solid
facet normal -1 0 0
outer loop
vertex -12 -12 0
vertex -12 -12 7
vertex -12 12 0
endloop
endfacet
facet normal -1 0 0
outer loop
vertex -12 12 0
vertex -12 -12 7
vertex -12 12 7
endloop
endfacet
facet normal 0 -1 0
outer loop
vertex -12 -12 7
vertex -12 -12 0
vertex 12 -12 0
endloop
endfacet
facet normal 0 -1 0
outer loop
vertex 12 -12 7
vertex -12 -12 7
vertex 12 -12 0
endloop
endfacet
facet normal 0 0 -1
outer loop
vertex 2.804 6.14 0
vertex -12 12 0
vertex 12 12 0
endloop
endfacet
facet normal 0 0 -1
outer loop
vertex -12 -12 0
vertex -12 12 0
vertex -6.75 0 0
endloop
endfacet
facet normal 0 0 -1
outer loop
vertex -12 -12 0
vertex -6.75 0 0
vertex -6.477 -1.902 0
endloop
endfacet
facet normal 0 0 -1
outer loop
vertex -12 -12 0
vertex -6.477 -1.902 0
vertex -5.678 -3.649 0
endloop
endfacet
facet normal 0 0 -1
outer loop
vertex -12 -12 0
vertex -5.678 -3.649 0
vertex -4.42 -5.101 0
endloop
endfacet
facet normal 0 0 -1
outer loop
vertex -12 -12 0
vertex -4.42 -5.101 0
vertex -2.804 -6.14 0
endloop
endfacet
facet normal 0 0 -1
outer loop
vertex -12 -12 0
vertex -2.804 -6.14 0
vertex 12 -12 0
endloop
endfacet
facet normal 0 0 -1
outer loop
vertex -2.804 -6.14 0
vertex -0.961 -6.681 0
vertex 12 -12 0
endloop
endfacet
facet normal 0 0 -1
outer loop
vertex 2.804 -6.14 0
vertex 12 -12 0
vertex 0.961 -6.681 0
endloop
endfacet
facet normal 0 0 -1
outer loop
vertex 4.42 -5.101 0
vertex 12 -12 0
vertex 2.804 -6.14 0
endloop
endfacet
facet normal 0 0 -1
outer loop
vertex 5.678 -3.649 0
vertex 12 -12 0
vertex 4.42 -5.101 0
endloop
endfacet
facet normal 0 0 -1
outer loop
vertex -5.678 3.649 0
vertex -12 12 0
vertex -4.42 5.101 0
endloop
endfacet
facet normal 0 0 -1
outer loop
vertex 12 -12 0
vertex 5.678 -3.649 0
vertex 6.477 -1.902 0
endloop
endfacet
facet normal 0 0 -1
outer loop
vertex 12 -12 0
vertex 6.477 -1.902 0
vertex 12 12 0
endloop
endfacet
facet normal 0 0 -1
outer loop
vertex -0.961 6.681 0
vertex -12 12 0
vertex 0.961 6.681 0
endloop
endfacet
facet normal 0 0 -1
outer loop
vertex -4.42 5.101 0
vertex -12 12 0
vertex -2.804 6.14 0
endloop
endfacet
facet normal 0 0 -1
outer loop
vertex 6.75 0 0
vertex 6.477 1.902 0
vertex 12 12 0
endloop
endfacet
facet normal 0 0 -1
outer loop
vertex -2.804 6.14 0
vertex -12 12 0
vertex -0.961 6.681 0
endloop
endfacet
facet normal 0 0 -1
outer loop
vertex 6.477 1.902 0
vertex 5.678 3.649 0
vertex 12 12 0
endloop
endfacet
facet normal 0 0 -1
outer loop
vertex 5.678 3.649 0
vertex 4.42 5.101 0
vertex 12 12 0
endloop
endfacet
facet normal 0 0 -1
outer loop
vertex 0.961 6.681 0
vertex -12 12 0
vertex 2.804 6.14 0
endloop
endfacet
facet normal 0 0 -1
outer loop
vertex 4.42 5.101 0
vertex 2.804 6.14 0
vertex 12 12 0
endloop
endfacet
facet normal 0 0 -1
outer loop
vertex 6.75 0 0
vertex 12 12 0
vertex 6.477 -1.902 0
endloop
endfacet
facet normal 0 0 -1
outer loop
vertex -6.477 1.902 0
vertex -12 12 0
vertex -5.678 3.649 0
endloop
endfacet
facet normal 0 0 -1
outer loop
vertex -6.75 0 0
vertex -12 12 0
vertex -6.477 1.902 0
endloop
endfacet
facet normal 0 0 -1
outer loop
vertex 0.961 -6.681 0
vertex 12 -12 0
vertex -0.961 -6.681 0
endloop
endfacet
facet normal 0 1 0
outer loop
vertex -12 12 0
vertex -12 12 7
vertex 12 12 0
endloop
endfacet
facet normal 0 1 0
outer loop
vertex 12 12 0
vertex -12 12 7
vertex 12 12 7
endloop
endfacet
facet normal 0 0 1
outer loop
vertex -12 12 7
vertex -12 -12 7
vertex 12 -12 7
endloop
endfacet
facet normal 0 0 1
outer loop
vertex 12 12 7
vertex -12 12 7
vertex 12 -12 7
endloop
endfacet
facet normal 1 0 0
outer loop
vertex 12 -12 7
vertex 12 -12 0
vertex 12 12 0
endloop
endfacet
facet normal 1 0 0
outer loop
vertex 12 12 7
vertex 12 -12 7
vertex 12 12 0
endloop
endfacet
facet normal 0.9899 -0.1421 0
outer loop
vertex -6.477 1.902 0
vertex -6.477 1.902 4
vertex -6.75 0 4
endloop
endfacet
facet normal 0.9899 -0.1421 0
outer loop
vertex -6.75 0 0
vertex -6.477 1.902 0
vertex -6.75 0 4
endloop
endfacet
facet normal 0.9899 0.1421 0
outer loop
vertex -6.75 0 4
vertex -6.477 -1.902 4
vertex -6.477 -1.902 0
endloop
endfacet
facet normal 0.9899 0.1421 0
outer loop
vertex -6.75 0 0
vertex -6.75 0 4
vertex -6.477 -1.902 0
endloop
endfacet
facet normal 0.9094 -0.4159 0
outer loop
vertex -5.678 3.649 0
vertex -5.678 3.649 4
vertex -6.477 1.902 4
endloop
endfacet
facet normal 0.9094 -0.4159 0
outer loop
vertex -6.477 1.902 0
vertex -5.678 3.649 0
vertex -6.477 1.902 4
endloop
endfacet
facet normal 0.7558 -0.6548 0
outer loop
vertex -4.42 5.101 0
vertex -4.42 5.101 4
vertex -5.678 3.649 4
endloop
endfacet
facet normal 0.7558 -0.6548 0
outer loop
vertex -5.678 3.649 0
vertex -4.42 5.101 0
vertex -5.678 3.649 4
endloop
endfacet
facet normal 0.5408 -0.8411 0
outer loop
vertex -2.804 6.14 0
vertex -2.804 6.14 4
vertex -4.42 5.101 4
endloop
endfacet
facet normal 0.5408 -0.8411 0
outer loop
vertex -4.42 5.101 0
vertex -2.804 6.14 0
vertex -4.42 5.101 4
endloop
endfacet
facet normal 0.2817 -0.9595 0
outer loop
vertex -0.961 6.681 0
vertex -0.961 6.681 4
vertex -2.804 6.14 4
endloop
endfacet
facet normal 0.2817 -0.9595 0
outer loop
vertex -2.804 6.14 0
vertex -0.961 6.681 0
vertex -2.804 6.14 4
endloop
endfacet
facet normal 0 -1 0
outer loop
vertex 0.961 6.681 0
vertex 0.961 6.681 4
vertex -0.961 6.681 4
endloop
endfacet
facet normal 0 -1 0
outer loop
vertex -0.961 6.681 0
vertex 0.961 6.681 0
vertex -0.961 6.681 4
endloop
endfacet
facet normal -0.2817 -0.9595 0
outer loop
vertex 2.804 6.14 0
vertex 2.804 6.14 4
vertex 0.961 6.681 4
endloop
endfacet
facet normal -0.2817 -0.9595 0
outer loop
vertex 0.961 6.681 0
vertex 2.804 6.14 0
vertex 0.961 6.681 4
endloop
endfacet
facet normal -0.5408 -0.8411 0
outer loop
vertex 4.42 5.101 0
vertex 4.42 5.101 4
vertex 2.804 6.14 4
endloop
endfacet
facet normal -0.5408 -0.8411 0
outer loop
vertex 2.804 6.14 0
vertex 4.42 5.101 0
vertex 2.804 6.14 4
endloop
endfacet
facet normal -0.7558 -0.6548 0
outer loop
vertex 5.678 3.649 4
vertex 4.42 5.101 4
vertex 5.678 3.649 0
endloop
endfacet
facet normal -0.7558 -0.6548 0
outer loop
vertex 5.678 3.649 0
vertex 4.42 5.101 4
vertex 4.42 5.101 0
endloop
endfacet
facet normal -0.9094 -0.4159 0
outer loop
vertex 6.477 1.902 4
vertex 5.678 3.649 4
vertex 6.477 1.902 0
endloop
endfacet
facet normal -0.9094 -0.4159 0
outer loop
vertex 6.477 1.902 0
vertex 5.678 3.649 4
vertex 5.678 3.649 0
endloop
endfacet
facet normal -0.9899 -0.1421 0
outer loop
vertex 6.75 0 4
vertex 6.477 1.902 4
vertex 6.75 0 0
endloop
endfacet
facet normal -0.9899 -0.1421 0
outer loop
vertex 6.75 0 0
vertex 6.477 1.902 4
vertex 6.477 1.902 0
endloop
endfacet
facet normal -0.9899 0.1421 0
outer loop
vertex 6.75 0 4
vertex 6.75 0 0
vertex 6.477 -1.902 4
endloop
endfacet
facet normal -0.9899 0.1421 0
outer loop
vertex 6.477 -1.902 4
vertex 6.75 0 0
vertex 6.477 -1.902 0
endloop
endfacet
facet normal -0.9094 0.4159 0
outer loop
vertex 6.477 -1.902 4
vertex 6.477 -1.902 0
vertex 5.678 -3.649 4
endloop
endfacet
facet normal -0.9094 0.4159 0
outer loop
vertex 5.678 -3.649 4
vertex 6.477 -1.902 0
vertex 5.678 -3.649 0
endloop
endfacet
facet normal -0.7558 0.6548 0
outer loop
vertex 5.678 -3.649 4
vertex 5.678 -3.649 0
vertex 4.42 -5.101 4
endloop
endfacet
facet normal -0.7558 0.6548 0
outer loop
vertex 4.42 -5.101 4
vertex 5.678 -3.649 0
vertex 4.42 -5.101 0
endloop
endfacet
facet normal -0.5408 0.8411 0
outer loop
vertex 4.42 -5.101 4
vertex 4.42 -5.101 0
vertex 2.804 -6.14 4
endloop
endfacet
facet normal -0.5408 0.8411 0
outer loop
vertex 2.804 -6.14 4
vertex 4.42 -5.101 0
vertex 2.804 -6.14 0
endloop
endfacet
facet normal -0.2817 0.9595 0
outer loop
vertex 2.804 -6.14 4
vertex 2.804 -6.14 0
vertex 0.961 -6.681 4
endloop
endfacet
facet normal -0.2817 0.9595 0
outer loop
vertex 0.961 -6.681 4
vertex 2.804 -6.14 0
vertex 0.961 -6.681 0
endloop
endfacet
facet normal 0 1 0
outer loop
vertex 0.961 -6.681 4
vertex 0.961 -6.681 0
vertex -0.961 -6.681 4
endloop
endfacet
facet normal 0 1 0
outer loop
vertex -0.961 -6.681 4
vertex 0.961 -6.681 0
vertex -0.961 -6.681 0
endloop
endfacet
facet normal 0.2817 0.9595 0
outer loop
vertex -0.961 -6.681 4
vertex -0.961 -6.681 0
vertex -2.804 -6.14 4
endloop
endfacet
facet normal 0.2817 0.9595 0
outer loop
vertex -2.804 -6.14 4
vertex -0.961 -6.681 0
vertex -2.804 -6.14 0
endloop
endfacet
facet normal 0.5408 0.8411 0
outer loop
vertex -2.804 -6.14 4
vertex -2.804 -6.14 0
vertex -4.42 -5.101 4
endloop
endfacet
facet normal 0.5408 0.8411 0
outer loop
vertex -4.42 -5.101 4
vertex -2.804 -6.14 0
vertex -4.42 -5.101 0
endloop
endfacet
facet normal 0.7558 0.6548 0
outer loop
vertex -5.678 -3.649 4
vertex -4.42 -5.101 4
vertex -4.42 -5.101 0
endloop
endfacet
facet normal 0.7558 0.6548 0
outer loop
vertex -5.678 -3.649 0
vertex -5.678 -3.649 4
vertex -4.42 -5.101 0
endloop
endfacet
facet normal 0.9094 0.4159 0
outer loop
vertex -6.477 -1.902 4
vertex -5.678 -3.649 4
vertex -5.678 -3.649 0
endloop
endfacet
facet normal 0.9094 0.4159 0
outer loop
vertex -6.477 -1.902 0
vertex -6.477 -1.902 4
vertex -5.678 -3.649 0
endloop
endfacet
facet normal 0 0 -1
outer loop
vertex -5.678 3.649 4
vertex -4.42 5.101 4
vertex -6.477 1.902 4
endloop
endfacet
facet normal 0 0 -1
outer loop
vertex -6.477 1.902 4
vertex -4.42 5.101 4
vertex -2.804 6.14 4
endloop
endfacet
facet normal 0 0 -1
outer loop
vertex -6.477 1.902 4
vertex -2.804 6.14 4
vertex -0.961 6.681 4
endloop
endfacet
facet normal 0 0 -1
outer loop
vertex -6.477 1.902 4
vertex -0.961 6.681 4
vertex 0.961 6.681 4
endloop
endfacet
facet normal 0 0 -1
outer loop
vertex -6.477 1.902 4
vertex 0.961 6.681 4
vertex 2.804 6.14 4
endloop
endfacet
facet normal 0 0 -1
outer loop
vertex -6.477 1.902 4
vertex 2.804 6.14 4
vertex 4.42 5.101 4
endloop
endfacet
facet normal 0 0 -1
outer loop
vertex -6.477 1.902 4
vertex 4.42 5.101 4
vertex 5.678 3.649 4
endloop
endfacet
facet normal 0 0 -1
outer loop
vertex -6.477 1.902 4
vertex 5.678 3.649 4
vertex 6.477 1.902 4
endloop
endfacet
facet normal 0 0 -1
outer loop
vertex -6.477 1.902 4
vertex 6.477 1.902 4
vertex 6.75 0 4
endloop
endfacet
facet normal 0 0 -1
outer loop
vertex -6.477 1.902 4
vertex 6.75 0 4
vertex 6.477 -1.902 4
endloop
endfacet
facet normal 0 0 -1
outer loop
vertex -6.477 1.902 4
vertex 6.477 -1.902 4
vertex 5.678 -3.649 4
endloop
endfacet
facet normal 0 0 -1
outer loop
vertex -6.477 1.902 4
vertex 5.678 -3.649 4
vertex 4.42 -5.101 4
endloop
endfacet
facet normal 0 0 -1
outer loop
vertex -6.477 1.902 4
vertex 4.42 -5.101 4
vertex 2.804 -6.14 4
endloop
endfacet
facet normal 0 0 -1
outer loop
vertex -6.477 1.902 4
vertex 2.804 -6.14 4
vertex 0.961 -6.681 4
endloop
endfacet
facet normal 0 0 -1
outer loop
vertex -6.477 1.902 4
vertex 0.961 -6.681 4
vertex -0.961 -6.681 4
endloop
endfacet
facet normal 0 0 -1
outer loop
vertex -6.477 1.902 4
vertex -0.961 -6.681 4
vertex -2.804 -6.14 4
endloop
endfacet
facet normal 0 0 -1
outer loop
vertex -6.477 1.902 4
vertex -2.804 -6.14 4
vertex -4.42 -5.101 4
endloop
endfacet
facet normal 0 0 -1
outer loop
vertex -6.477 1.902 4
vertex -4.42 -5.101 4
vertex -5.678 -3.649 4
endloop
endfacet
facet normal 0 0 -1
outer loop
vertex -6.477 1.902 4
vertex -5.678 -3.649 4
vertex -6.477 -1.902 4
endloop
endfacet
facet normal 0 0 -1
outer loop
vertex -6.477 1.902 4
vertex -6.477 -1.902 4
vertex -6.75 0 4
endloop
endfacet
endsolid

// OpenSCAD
difference() {
	translate([-12,-12,0]) cube([24,24,7]);
	translate([0,0,-1]) cylinder(5,6.75,6.75);
}
